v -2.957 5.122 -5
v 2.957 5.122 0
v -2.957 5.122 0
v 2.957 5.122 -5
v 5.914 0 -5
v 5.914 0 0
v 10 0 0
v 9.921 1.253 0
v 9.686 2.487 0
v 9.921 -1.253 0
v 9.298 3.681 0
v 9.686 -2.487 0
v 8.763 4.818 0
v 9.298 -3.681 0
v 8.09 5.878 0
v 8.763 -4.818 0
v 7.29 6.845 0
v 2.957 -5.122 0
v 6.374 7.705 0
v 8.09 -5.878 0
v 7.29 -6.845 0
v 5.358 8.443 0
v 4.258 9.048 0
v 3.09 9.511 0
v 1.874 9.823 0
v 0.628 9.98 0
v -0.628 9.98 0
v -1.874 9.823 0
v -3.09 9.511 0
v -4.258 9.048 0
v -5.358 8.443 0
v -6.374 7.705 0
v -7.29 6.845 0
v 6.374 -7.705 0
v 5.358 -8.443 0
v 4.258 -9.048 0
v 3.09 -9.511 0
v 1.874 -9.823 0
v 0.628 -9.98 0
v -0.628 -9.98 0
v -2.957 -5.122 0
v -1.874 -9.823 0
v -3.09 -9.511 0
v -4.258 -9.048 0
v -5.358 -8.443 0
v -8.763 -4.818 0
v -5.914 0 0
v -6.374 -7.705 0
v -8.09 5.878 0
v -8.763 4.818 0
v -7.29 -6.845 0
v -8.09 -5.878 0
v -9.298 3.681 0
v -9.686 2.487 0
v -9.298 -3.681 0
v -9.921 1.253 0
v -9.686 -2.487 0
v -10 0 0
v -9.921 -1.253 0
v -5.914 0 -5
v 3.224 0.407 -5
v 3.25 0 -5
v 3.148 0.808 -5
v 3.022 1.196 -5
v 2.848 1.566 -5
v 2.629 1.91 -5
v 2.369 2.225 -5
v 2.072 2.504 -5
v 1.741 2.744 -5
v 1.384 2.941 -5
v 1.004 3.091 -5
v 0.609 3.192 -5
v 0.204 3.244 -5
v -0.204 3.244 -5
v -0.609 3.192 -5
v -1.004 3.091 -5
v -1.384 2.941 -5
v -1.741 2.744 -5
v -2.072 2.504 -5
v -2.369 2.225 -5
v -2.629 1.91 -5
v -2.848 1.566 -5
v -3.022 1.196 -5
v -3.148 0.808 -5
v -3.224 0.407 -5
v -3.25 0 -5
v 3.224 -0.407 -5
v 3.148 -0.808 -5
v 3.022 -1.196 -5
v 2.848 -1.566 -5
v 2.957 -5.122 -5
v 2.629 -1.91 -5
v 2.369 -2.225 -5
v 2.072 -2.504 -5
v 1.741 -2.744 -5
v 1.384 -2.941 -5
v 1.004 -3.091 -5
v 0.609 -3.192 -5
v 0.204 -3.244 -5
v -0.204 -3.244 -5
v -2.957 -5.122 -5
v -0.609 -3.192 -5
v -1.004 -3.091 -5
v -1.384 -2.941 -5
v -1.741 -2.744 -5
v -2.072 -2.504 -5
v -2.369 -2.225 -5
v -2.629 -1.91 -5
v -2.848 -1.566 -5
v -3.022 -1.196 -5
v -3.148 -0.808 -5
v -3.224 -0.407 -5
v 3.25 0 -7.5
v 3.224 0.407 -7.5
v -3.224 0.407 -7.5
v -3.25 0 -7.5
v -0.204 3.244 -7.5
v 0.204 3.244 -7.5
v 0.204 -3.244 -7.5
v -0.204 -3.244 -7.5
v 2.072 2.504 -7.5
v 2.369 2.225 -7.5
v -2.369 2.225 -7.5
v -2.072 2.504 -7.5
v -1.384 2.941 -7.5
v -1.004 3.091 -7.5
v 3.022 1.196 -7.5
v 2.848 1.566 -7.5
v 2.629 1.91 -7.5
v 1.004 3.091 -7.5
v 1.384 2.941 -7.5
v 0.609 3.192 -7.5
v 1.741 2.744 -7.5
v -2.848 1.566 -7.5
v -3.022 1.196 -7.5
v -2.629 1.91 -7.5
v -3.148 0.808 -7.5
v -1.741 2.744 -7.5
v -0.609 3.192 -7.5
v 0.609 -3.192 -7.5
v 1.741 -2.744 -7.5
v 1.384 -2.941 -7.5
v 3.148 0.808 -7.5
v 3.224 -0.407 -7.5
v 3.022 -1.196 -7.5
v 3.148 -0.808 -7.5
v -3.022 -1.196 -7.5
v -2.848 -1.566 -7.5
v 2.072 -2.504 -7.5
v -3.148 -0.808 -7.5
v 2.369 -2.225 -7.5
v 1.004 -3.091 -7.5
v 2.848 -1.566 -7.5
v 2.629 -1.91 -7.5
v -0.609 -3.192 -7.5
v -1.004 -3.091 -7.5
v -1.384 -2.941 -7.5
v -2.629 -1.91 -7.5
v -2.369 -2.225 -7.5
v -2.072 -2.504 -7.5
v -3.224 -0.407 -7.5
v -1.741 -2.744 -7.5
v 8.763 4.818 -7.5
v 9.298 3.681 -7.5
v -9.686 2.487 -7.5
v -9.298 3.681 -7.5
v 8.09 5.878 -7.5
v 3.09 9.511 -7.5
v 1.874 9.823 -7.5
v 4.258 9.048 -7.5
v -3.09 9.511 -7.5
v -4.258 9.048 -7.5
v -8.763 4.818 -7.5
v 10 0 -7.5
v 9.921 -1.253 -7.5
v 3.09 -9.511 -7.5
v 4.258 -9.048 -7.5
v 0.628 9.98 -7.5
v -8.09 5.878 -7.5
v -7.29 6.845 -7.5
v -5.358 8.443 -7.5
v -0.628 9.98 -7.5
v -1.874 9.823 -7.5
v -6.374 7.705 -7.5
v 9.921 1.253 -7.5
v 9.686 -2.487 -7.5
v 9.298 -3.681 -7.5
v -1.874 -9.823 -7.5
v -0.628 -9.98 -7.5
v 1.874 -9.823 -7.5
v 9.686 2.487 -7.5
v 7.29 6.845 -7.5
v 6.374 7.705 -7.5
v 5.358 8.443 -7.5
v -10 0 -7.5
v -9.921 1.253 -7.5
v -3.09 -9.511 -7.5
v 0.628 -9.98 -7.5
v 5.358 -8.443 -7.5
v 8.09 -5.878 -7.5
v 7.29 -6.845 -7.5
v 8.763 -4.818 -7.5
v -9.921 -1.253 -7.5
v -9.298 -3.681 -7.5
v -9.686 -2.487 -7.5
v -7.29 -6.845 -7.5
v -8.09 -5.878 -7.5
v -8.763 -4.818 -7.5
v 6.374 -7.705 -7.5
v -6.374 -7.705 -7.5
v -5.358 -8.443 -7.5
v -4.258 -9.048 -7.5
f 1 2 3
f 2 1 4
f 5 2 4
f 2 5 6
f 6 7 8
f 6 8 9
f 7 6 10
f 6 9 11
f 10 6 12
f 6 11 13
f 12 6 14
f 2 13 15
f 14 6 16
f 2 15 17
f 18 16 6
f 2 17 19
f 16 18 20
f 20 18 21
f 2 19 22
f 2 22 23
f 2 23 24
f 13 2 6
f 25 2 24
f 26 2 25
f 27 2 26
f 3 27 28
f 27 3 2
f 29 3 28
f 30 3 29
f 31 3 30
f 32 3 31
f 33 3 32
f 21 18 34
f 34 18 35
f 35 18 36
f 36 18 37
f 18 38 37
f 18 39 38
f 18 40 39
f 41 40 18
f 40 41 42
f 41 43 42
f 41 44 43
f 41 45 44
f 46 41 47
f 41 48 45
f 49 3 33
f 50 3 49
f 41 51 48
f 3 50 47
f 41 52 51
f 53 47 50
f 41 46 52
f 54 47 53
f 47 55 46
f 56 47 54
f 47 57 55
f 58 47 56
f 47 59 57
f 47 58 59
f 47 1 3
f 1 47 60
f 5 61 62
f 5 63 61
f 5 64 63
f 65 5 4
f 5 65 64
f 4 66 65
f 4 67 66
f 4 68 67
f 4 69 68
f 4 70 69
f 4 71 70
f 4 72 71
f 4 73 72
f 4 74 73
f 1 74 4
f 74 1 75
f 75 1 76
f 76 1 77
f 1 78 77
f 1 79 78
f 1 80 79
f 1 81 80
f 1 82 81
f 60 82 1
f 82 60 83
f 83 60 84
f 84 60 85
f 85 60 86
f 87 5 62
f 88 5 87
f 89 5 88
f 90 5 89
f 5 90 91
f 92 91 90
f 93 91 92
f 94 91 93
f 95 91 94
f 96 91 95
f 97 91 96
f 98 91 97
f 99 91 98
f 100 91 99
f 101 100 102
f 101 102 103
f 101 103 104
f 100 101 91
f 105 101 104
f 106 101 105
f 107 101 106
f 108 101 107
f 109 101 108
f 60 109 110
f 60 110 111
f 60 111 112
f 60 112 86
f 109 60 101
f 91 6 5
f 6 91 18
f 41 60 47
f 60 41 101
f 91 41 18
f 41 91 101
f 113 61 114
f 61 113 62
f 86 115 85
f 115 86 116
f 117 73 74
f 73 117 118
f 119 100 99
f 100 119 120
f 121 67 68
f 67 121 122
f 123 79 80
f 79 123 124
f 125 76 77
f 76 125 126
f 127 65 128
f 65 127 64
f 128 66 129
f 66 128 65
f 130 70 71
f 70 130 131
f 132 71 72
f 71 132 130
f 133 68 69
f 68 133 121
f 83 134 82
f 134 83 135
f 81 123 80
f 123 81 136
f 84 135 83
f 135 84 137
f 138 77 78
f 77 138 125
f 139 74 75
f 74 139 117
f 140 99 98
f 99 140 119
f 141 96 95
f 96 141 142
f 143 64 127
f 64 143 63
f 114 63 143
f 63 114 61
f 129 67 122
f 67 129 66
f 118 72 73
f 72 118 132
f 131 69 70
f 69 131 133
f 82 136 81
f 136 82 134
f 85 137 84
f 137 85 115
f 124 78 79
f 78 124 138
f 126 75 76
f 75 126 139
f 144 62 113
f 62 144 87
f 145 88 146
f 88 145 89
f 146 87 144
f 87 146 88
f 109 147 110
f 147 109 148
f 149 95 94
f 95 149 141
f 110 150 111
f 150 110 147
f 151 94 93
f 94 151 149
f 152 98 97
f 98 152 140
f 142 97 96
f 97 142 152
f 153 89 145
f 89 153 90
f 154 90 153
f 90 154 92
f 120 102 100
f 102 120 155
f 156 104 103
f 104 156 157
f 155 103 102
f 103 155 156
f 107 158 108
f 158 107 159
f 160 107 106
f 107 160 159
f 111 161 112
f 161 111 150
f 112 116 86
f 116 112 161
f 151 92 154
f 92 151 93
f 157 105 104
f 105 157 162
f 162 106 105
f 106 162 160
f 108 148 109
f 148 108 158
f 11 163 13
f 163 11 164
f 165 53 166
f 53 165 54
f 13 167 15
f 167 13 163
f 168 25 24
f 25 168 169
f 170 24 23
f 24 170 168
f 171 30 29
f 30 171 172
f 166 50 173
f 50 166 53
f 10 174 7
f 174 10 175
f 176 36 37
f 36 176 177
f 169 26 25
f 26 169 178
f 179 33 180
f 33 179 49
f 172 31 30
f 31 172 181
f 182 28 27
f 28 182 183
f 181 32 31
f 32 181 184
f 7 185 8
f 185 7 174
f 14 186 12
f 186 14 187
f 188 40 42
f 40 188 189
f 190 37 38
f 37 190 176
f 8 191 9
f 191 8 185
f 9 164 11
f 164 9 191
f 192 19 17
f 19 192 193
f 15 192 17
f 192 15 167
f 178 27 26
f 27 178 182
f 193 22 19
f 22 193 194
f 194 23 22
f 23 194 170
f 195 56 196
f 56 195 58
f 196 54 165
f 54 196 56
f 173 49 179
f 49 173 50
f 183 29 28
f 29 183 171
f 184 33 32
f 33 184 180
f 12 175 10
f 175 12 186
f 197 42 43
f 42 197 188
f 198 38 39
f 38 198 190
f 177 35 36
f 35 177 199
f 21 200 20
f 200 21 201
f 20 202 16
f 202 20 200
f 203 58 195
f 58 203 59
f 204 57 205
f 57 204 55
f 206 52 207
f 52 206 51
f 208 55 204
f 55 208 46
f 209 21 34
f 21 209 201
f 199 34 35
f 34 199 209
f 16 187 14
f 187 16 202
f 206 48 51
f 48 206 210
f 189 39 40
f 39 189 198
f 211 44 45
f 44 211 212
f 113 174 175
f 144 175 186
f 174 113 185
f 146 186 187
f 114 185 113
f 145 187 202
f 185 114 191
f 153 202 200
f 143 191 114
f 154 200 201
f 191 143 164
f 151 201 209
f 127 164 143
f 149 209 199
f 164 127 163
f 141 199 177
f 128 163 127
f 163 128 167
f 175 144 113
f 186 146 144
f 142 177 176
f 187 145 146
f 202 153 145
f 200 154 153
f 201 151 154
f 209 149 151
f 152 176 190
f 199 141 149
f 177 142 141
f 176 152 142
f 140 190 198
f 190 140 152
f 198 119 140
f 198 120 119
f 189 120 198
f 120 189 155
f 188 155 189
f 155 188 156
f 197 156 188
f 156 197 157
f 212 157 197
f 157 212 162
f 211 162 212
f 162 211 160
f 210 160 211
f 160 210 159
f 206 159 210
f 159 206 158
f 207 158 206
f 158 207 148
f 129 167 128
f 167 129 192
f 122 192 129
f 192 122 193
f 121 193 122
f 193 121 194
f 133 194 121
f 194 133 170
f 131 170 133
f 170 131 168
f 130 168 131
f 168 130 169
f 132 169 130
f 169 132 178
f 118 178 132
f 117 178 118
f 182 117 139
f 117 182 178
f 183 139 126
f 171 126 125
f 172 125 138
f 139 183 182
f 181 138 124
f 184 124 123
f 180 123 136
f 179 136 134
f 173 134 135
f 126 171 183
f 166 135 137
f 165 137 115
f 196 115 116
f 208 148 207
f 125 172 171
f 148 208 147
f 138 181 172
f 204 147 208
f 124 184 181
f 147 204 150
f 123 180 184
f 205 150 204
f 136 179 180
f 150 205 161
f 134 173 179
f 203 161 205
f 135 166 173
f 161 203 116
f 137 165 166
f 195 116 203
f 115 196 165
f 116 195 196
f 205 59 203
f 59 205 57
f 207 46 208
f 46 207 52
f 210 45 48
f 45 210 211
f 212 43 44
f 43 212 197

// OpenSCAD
$fn = 50;

difference() {
	union() {
		translate(v = [0, 0, -7.5]) {
			cylinder(h = 7.5, r = 10.0);
		}
		#translate(v = [0, 0, -9.0]) {
			cylinder(h = 9, r = 2.875);
		}
	}
	union() {
		translate(v = [0, 0, 0]) {
			rotate(a = [0, 0, 0]) {
				difference() {
					union() {
						translate(v = [0, 0, -5]) {
							linear_extrude(height = 5) {
								polygon(points = [[5.914249999999999, 0.0], [2.957125, 5.1218907443321156], [-2.9571249999999982, 5.1218907443321156], [-5.914249999999999, 7.242867331857232e-16], [-2.9571250000000022, -5.121890744332115], [2.9571249999999956, -5.121890744332118]]);
							}
						}
					}
					union();
				}
			}
		}
		#translate(v = [0, 0, -100.0]) {
			cylinder(h = 200, r = 3.25);
		}
	}
}
